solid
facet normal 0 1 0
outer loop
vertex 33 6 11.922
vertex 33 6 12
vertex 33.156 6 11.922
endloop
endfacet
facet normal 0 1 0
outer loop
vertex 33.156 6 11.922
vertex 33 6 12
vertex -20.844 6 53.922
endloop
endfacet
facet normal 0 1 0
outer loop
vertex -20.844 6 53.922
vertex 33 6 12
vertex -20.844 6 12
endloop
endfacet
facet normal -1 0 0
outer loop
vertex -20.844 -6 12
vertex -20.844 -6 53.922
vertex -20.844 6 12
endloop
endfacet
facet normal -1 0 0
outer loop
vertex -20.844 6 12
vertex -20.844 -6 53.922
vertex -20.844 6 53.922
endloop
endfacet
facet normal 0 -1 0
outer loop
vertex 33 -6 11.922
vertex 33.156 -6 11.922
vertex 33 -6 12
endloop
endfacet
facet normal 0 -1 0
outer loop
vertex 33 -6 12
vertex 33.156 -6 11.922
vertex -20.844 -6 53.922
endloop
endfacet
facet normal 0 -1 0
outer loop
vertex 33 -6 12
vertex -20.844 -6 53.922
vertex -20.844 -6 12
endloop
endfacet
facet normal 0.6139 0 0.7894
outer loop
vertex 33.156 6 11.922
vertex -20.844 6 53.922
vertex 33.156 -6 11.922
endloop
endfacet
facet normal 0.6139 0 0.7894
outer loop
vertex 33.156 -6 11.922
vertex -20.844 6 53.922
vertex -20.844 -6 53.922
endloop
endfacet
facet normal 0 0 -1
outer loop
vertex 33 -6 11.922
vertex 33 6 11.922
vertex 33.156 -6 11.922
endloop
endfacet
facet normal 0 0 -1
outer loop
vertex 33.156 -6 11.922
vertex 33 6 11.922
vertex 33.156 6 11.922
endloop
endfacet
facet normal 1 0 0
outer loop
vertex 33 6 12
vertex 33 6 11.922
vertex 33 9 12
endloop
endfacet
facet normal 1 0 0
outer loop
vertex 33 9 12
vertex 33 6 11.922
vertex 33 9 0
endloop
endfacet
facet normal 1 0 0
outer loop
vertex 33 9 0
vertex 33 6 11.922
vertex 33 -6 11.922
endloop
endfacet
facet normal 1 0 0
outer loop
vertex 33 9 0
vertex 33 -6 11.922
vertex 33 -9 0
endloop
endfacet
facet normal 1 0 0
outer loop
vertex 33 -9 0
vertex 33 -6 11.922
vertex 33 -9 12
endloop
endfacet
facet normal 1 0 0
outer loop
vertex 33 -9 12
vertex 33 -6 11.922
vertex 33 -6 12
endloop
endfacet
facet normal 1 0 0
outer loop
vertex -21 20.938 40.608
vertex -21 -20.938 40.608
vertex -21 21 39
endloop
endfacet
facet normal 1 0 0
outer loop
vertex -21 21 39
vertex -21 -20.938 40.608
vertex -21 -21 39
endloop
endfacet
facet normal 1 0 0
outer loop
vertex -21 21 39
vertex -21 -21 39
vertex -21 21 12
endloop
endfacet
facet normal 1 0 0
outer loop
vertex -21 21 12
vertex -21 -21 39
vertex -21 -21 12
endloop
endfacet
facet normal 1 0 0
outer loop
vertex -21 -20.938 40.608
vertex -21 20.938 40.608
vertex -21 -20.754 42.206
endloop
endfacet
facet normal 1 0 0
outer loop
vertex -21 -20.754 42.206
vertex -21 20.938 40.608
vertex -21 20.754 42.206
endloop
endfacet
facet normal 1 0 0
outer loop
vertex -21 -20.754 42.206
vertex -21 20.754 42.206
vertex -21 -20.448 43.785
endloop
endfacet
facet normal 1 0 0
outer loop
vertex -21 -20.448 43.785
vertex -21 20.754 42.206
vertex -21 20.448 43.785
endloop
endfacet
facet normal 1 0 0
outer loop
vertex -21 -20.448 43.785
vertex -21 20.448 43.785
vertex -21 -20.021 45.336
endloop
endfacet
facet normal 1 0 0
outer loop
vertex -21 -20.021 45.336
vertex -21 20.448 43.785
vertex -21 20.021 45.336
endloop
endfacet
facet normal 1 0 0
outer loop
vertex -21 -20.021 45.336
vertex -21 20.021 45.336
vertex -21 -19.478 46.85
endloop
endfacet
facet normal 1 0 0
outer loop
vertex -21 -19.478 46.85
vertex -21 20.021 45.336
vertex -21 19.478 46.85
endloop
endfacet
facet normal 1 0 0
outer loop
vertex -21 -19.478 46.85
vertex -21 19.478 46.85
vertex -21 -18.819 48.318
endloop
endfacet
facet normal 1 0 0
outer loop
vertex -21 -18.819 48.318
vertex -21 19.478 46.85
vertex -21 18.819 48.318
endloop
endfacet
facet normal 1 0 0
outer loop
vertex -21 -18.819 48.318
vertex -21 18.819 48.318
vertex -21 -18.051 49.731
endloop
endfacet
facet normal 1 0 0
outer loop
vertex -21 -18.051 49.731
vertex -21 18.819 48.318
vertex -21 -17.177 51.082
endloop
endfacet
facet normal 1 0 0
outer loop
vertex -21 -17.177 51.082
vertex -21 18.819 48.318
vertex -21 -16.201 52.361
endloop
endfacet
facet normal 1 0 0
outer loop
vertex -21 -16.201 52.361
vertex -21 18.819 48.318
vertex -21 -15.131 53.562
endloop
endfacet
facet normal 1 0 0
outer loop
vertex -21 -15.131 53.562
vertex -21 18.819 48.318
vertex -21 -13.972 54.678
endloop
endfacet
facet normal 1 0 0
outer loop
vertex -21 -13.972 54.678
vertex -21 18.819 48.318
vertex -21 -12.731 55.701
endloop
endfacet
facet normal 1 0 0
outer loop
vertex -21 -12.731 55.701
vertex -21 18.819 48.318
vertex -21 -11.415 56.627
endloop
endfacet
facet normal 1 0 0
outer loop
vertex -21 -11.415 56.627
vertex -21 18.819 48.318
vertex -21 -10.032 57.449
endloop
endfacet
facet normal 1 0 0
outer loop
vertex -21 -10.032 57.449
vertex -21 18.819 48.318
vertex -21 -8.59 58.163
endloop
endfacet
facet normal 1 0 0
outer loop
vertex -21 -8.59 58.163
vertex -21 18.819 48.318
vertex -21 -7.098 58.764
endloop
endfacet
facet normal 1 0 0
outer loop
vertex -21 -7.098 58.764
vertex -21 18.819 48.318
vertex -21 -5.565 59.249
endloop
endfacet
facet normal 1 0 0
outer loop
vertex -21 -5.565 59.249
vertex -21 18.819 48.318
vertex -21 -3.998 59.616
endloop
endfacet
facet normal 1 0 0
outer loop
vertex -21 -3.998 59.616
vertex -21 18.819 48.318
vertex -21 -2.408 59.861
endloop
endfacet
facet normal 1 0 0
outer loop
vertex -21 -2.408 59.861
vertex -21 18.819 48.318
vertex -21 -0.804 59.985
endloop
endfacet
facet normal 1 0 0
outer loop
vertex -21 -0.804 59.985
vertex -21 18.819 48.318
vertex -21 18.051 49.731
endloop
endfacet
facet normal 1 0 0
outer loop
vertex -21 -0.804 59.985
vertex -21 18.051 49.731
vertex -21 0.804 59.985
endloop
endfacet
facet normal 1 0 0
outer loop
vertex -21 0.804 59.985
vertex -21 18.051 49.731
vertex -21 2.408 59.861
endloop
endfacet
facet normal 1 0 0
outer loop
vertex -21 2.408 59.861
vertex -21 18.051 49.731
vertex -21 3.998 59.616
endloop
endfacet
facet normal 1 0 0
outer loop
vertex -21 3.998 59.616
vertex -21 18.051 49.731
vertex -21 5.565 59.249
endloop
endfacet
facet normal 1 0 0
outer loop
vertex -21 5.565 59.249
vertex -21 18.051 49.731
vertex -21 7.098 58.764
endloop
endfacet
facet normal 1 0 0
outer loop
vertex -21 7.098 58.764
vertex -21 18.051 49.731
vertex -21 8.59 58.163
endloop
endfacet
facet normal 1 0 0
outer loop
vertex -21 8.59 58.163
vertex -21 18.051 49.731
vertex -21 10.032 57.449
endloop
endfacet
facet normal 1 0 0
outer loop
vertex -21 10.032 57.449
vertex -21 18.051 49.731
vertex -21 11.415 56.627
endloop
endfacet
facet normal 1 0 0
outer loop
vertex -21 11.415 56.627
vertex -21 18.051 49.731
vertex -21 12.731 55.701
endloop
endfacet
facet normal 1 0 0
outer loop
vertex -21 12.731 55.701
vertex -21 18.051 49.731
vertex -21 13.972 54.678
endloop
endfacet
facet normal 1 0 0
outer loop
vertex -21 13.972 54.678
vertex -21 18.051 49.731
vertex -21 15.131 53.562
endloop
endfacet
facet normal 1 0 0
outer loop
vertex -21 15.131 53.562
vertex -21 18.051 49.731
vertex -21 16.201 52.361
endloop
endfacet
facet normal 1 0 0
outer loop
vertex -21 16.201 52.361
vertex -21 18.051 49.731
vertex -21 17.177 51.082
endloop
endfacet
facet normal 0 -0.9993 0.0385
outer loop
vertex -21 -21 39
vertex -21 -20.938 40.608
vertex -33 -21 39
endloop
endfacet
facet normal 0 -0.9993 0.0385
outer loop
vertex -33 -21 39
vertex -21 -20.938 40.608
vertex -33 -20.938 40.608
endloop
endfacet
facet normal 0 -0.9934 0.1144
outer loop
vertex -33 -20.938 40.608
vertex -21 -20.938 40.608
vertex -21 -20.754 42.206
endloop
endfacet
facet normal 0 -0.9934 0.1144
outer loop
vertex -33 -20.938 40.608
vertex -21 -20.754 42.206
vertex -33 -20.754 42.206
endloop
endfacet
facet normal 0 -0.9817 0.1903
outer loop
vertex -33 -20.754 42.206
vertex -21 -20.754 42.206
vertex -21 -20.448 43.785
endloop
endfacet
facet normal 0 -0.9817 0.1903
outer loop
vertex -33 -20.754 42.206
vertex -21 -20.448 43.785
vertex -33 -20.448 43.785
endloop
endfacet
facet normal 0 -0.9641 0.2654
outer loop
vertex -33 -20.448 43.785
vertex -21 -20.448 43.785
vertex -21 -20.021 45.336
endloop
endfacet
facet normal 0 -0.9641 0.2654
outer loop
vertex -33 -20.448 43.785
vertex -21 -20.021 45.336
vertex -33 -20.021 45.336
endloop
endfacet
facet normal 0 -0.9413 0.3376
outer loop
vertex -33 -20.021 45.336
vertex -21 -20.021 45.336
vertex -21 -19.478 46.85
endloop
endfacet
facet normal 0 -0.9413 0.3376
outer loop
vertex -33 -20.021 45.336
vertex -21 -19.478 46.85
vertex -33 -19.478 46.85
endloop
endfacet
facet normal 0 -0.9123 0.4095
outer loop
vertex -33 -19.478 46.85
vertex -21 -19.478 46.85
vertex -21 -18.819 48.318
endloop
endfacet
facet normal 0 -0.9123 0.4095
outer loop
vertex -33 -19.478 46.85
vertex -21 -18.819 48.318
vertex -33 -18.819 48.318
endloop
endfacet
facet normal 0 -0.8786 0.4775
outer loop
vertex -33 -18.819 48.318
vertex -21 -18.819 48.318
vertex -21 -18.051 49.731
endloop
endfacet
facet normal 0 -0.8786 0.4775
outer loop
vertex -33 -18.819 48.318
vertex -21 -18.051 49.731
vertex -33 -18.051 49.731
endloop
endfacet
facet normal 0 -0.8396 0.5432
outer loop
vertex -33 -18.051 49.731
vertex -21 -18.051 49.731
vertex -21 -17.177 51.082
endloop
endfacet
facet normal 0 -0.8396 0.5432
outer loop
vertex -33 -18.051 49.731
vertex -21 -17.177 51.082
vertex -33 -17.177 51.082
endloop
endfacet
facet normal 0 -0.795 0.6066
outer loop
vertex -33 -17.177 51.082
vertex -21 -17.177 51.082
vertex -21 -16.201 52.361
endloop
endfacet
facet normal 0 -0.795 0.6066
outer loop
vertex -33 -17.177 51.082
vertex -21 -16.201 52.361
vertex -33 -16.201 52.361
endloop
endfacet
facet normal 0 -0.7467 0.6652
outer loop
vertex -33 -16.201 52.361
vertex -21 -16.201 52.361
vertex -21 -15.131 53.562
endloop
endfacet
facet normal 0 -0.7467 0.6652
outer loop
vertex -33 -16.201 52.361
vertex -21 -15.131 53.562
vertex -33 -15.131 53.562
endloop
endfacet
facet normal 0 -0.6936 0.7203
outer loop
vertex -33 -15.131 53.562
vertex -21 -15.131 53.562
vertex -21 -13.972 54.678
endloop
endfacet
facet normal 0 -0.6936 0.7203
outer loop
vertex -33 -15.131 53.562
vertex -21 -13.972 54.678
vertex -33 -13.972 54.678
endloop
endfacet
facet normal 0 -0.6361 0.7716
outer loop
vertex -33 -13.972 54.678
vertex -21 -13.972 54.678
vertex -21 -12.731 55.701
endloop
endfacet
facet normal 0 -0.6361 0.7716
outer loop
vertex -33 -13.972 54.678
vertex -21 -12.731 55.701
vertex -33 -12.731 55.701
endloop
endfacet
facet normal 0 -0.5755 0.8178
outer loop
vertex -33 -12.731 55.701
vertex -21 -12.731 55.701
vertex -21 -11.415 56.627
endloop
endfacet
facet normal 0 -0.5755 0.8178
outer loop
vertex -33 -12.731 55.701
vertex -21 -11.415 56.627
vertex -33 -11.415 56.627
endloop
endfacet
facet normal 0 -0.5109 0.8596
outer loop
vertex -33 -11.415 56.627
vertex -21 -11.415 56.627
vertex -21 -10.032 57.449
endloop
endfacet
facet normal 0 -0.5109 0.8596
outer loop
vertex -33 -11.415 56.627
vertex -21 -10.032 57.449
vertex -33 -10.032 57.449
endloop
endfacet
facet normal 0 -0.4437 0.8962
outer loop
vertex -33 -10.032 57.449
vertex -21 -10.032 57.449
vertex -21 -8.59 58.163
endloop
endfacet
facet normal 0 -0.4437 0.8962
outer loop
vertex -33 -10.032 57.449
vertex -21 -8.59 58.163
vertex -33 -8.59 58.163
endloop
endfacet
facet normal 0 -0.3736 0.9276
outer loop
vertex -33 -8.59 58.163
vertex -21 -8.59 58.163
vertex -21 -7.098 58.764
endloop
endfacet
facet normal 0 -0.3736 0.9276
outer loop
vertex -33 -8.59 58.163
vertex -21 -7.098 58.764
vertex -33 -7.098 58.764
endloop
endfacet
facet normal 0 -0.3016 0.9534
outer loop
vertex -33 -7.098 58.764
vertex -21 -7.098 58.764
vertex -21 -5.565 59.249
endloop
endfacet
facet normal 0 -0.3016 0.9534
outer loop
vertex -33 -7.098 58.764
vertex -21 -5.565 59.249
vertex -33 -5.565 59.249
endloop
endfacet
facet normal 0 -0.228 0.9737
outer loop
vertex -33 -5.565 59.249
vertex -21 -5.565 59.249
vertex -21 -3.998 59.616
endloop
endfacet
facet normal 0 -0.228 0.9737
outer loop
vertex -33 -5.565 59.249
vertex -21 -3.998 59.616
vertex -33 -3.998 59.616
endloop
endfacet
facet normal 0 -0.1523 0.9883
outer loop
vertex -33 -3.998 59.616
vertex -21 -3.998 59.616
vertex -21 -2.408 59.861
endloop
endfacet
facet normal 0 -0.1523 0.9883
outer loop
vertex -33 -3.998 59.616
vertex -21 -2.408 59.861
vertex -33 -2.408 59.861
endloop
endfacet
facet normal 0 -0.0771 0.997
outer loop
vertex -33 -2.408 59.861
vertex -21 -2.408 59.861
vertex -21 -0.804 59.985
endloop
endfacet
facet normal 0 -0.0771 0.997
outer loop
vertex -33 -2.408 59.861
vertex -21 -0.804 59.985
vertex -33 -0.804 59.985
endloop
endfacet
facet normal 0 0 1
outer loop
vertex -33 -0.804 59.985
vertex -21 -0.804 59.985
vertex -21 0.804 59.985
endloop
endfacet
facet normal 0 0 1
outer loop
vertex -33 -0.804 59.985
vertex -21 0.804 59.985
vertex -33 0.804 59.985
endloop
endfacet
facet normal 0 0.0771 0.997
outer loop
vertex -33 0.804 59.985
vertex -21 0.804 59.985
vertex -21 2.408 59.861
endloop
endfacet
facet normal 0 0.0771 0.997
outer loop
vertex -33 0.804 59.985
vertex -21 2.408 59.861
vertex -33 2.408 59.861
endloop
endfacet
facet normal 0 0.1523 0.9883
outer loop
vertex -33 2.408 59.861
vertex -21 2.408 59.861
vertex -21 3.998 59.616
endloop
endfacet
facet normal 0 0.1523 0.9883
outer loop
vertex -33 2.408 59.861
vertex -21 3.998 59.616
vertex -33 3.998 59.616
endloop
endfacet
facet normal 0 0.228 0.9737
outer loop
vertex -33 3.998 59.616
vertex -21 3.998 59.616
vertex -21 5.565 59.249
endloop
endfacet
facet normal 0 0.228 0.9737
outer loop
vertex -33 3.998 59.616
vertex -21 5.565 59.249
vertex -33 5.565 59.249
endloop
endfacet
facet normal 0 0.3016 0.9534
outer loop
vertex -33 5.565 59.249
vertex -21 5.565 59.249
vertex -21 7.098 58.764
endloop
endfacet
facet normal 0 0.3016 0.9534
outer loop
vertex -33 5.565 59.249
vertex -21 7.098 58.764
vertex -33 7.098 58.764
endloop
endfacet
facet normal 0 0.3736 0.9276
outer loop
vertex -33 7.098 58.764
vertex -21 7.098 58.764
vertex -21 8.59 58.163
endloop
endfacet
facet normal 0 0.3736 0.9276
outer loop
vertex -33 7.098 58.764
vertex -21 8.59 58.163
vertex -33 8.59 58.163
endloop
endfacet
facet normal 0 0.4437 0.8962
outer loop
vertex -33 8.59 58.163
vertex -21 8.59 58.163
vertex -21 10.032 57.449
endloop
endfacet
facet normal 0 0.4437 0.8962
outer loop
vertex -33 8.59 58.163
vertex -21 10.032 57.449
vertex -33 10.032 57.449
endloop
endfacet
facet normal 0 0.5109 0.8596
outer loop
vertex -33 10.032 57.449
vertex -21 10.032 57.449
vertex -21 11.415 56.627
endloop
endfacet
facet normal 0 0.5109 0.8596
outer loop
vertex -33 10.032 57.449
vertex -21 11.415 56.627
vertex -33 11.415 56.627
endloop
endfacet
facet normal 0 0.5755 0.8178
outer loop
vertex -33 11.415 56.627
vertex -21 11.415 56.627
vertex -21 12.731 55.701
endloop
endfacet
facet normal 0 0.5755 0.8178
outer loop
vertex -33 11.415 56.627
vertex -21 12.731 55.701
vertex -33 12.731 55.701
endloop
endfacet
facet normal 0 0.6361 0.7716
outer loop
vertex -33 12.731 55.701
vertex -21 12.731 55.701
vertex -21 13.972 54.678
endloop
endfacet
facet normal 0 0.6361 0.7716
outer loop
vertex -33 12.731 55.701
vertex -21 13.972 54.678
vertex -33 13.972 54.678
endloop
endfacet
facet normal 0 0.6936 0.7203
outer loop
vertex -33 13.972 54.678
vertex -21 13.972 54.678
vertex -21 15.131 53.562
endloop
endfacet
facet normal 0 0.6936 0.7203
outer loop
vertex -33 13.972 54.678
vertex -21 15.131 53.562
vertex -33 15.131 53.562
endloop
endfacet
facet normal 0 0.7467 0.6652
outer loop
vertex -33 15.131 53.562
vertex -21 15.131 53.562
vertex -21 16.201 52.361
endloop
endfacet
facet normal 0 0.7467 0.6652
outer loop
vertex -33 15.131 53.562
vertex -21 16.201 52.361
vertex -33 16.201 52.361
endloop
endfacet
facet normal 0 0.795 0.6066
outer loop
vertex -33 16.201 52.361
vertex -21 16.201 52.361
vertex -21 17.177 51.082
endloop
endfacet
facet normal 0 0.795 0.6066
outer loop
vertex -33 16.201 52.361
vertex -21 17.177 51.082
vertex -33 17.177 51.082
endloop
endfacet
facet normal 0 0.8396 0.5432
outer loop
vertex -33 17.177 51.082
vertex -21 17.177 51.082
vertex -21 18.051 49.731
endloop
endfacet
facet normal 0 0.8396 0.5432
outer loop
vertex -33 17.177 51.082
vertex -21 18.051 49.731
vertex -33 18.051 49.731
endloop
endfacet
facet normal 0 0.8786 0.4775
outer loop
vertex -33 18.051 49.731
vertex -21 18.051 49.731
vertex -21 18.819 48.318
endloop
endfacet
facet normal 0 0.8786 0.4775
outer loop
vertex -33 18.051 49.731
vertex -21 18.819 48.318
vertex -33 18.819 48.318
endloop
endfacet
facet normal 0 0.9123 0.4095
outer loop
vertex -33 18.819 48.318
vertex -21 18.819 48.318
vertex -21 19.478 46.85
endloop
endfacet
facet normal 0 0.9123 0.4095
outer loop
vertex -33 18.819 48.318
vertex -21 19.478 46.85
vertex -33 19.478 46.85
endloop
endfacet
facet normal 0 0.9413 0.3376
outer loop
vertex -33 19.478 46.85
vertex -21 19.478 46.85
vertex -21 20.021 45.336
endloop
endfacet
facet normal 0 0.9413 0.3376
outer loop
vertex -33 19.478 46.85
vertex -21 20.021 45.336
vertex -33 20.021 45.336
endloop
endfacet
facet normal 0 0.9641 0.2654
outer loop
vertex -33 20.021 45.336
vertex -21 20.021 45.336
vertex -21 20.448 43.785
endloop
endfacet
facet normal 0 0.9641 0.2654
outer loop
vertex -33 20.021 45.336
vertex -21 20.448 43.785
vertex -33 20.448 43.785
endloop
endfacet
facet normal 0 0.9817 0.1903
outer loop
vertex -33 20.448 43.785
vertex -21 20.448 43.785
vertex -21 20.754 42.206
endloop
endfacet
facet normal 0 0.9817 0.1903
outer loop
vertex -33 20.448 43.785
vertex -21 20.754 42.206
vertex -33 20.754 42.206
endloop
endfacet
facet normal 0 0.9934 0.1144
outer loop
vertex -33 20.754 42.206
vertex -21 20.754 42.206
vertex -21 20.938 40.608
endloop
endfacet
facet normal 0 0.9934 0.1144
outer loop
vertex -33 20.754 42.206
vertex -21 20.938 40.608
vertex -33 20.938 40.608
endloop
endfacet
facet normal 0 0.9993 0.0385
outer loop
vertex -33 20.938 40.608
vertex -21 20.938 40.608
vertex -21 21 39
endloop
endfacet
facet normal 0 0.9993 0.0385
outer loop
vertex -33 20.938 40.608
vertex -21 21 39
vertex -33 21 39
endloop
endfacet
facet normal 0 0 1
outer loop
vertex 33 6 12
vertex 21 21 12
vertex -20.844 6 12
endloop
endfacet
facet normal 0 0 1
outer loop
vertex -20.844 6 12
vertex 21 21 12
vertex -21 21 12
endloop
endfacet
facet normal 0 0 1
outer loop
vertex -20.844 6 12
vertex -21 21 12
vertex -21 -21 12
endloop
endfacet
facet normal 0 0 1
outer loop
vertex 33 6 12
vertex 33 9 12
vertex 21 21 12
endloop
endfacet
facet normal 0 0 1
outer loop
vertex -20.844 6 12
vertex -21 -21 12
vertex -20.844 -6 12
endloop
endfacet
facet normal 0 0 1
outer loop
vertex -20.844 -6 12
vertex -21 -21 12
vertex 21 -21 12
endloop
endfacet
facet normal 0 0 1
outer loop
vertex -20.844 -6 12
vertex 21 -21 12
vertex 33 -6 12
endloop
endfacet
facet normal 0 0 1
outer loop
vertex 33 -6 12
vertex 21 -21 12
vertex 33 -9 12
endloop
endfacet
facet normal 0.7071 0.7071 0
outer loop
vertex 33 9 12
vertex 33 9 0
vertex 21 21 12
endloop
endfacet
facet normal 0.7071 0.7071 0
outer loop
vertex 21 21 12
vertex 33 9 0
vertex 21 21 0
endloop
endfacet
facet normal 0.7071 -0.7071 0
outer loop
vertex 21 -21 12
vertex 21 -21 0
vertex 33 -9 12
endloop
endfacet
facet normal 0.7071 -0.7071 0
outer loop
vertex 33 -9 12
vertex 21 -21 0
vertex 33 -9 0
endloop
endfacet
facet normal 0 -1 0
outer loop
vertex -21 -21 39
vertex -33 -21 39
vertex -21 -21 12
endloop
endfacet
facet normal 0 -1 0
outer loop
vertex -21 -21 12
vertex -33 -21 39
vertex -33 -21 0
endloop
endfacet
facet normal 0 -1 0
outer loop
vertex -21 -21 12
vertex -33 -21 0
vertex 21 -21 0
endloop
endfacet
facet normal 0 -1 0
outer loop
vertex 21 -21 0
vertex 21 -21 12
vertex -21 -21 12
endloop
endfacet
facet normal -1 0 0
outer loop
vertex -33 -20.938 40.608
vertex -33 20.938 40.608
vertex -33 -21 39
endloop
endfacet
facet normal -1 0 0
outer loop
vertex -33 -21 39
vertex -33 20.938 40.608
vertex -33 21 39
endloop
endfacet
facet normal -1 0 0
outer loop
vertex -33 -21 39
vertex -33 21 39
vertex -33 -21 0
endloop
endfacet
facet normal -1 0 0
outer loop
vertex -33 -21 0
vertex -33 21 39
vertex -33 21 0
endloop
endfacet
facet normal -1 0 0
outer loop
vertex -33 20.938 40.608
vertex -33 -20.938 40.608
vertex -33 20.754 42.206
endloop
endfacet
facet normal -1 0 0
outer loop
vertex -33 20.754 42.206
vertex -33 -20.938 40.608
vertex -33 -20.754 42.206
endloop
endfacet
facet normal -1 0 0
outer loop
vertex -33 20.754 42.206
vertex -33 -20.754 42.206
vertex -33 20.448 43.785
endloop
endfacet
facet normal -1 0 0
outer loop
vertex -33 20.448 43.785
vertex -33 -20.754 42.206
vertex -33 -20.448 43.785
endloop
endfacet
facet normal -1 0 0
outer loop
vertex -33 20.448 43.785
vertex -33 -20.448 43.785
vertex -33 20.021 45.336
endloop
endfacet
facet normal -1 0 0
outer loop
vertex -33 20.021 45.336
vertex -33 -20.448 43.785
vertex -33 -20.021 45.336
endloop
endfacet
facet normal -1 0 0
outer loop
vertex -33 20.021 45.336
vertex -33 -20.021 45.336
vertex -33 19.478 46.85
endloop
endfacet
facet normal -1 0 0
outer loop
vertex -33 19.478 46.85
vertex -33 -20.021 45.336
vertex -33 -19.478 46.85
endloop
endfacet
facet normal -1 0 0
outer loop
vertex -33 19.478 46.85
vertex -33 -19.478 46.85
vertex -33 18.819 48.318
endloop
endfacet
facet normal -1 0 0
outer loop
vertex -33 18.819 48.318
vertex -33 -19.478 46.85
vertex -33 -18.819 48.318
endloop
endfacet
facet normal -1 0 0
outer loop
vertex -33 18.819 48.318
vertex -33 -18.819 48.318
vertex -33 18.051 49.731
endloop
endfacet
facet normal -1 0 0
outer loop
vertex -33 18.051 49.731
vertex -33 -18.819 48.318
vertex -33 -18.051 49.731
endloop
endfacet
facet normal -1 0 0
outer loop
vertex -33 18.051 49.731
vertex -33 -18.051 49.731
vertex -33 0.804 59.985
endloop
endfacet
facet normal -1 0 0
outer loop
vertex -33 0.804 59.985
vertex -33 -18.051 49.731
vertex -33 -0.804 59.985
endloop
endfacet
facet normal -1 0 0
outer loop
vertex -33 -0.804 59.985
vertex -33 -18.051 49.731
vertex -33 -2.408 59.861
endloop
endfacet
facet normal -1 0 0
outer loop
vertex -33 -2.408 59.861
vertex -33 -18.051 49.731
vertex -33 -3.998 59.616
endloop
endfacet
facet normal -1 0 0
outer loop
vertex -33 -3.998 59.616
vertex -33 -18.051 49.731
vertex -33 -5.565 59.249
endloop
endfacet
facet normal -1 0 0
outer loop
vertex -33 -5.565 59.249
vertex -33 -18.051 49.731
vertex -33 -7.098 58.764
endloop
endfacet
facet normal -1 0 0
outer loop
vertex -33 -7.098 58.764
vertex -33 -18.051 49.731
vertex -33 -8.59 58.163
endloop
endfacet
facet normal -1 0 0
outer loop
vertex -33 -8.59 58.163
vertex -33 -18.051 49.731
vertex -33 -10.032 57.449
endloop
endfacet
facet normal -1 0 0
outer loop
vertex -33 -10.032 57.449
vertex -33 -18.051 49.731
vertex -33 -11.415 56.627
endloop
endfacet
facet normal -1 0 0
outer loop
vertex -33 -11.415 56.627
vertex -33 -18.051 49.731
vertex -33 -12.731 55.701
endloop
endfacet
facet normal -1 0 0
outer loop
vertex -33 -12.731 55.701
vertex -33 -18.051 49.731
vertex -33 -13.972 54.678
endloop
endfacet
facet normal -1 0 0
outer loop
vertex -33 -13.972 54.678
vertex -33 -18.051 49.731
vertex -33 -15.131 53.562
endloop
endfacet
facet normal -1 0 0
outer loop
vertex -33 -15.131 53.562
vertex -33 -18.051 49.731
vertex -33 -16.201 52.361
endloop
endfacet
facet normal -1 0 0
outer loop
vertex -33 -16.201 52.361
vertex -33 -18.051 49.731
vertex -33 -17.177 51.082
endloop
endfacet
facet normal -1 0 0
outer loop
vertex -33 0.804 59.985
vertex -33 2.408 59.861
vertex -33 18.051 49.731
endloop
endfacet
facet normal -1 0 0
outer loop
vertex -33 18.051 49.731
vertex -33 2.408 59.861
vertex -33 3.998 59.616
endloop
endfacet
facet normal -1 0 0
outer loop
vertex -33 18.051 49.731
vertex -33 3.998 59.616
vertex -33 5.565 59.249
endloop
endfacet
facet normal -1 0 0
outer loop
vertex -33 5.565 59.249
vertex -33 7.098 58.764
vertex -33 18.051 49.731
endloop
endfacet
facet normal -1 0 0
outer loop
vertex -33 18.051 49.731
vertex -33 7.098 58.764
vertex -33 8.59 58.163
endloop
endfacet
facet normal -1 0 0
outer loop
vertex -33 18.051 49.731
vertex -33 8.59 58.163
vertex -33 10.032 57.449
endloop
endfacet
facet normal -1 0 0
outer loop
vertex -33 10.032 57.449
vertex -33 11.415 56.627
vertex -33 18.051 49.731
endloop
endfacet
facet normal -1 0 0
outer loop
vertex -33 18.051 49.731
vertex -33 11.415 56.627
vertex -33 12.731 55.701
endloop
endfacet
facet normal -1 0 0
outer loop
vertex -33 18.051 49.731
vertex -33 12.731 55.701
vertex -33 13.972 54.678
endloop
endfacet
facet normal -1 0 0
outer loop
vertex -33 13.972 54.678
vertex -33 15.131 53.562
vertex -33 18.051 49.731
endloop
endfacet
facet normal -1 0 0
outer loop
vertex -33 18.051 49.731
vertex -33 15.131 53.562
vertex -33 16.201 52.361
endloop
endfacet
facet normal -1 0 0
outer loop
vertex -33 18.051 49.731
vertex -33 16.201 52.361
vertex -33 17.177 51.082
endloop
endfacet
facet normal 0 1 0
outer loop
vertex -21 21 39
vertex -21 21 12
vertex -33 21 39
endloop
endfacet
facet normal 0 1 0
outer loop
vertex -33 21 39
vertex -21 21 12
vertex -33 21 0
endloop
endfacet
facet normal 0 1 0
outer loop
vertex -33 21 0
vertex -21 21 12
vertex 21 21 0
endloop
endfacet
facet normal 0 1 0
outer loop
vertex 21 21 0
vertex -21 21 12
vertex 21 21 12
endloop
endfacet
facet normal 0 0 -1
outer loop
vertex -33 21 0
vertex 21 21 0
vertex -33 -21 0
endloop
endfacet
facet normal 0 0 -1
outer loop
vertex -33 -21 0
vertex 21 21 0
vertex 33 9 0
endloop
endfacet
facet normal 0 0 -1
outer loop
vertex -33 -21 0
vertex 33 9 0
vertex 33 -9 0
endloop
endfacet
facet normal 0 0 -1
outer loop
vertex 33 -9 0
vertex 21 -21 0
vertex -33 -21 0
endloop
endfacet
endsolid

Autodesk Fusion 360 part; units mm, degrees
sketch "Sketch1" plane through (0, 0, 0) normal (0, 0, 1) x (1, 0, 0)
  line L0 (33, 21) -> (-33, 21)
  line L1 (-33, 21) -> (-33, -21)
  line L2 (-33, -21) -> (33, -21)
  line L3 (33, -21) -> (33, 21)
  line L4 (33, 21) -> (-33, -21) construction
  line L5 (-33, 21) -> (33, -21) construction
  dimension "d1" = 66
  dimension "d2" = 42
extrude "Extrude1" add sketch "Sketch1" along normal blind 12
chamfer "Chamfer1" distance 12 angle 45 2 edges at (33, -21, 6) (33, 21, 6)
sketch "Sketch2" plane through (0, 0, 12) normal (0, 0, 1) x (-1, 0, 0)
  line L0 (-33, -9) -> (-21, -21)
  line L1 (-21, -21) -> (33, -21)
  line L2 (33, -21) -> (33, 21)
  line L3 (33, 21) -> (-21, 21)
  line L4 (-21, 21) -> (-33, 9)
  line L5 (-33, 9) -> (-33, -9)
  line L6 (33, -21) -> (21, -21)
  line L7 (21, -21) -> (21, 21)
  line L8 (21, 21) -> (33, 21)
  line L9 (33, 21) -> (33, -21)
  dimension "d6" = 12
extrude "Extrude2" add sketch "Sketch2" along normal blind 48 contours L1 L2 L3 L6 L7 L8 L9
fillet "Fillet1" radius 21 2 edges at (-27, -21, 60) (-27, 21, 60)
sketch "Sketch3" plane through (0, 0, 0) normal (0, 1, 0) x (1, 0, 0)
  line L0 (-20.8444, -53.9217) -> (-20.8444, -11.9217)
  line L1 (-20.8444, -11.9217) -> (33.1556, -11.9217)
  line L2 (33.1556, -11.9217) -> (-20.8444, -53.9217)
  dimension "d10" = 42
  dimension "d11" = 54
extrude "Extrude3" add sketch "Sketch3" along normal mid plane 12
equation "d7 = 60 mm - 12 mm"
equation "d11 = 66 mm - 12 mm"
